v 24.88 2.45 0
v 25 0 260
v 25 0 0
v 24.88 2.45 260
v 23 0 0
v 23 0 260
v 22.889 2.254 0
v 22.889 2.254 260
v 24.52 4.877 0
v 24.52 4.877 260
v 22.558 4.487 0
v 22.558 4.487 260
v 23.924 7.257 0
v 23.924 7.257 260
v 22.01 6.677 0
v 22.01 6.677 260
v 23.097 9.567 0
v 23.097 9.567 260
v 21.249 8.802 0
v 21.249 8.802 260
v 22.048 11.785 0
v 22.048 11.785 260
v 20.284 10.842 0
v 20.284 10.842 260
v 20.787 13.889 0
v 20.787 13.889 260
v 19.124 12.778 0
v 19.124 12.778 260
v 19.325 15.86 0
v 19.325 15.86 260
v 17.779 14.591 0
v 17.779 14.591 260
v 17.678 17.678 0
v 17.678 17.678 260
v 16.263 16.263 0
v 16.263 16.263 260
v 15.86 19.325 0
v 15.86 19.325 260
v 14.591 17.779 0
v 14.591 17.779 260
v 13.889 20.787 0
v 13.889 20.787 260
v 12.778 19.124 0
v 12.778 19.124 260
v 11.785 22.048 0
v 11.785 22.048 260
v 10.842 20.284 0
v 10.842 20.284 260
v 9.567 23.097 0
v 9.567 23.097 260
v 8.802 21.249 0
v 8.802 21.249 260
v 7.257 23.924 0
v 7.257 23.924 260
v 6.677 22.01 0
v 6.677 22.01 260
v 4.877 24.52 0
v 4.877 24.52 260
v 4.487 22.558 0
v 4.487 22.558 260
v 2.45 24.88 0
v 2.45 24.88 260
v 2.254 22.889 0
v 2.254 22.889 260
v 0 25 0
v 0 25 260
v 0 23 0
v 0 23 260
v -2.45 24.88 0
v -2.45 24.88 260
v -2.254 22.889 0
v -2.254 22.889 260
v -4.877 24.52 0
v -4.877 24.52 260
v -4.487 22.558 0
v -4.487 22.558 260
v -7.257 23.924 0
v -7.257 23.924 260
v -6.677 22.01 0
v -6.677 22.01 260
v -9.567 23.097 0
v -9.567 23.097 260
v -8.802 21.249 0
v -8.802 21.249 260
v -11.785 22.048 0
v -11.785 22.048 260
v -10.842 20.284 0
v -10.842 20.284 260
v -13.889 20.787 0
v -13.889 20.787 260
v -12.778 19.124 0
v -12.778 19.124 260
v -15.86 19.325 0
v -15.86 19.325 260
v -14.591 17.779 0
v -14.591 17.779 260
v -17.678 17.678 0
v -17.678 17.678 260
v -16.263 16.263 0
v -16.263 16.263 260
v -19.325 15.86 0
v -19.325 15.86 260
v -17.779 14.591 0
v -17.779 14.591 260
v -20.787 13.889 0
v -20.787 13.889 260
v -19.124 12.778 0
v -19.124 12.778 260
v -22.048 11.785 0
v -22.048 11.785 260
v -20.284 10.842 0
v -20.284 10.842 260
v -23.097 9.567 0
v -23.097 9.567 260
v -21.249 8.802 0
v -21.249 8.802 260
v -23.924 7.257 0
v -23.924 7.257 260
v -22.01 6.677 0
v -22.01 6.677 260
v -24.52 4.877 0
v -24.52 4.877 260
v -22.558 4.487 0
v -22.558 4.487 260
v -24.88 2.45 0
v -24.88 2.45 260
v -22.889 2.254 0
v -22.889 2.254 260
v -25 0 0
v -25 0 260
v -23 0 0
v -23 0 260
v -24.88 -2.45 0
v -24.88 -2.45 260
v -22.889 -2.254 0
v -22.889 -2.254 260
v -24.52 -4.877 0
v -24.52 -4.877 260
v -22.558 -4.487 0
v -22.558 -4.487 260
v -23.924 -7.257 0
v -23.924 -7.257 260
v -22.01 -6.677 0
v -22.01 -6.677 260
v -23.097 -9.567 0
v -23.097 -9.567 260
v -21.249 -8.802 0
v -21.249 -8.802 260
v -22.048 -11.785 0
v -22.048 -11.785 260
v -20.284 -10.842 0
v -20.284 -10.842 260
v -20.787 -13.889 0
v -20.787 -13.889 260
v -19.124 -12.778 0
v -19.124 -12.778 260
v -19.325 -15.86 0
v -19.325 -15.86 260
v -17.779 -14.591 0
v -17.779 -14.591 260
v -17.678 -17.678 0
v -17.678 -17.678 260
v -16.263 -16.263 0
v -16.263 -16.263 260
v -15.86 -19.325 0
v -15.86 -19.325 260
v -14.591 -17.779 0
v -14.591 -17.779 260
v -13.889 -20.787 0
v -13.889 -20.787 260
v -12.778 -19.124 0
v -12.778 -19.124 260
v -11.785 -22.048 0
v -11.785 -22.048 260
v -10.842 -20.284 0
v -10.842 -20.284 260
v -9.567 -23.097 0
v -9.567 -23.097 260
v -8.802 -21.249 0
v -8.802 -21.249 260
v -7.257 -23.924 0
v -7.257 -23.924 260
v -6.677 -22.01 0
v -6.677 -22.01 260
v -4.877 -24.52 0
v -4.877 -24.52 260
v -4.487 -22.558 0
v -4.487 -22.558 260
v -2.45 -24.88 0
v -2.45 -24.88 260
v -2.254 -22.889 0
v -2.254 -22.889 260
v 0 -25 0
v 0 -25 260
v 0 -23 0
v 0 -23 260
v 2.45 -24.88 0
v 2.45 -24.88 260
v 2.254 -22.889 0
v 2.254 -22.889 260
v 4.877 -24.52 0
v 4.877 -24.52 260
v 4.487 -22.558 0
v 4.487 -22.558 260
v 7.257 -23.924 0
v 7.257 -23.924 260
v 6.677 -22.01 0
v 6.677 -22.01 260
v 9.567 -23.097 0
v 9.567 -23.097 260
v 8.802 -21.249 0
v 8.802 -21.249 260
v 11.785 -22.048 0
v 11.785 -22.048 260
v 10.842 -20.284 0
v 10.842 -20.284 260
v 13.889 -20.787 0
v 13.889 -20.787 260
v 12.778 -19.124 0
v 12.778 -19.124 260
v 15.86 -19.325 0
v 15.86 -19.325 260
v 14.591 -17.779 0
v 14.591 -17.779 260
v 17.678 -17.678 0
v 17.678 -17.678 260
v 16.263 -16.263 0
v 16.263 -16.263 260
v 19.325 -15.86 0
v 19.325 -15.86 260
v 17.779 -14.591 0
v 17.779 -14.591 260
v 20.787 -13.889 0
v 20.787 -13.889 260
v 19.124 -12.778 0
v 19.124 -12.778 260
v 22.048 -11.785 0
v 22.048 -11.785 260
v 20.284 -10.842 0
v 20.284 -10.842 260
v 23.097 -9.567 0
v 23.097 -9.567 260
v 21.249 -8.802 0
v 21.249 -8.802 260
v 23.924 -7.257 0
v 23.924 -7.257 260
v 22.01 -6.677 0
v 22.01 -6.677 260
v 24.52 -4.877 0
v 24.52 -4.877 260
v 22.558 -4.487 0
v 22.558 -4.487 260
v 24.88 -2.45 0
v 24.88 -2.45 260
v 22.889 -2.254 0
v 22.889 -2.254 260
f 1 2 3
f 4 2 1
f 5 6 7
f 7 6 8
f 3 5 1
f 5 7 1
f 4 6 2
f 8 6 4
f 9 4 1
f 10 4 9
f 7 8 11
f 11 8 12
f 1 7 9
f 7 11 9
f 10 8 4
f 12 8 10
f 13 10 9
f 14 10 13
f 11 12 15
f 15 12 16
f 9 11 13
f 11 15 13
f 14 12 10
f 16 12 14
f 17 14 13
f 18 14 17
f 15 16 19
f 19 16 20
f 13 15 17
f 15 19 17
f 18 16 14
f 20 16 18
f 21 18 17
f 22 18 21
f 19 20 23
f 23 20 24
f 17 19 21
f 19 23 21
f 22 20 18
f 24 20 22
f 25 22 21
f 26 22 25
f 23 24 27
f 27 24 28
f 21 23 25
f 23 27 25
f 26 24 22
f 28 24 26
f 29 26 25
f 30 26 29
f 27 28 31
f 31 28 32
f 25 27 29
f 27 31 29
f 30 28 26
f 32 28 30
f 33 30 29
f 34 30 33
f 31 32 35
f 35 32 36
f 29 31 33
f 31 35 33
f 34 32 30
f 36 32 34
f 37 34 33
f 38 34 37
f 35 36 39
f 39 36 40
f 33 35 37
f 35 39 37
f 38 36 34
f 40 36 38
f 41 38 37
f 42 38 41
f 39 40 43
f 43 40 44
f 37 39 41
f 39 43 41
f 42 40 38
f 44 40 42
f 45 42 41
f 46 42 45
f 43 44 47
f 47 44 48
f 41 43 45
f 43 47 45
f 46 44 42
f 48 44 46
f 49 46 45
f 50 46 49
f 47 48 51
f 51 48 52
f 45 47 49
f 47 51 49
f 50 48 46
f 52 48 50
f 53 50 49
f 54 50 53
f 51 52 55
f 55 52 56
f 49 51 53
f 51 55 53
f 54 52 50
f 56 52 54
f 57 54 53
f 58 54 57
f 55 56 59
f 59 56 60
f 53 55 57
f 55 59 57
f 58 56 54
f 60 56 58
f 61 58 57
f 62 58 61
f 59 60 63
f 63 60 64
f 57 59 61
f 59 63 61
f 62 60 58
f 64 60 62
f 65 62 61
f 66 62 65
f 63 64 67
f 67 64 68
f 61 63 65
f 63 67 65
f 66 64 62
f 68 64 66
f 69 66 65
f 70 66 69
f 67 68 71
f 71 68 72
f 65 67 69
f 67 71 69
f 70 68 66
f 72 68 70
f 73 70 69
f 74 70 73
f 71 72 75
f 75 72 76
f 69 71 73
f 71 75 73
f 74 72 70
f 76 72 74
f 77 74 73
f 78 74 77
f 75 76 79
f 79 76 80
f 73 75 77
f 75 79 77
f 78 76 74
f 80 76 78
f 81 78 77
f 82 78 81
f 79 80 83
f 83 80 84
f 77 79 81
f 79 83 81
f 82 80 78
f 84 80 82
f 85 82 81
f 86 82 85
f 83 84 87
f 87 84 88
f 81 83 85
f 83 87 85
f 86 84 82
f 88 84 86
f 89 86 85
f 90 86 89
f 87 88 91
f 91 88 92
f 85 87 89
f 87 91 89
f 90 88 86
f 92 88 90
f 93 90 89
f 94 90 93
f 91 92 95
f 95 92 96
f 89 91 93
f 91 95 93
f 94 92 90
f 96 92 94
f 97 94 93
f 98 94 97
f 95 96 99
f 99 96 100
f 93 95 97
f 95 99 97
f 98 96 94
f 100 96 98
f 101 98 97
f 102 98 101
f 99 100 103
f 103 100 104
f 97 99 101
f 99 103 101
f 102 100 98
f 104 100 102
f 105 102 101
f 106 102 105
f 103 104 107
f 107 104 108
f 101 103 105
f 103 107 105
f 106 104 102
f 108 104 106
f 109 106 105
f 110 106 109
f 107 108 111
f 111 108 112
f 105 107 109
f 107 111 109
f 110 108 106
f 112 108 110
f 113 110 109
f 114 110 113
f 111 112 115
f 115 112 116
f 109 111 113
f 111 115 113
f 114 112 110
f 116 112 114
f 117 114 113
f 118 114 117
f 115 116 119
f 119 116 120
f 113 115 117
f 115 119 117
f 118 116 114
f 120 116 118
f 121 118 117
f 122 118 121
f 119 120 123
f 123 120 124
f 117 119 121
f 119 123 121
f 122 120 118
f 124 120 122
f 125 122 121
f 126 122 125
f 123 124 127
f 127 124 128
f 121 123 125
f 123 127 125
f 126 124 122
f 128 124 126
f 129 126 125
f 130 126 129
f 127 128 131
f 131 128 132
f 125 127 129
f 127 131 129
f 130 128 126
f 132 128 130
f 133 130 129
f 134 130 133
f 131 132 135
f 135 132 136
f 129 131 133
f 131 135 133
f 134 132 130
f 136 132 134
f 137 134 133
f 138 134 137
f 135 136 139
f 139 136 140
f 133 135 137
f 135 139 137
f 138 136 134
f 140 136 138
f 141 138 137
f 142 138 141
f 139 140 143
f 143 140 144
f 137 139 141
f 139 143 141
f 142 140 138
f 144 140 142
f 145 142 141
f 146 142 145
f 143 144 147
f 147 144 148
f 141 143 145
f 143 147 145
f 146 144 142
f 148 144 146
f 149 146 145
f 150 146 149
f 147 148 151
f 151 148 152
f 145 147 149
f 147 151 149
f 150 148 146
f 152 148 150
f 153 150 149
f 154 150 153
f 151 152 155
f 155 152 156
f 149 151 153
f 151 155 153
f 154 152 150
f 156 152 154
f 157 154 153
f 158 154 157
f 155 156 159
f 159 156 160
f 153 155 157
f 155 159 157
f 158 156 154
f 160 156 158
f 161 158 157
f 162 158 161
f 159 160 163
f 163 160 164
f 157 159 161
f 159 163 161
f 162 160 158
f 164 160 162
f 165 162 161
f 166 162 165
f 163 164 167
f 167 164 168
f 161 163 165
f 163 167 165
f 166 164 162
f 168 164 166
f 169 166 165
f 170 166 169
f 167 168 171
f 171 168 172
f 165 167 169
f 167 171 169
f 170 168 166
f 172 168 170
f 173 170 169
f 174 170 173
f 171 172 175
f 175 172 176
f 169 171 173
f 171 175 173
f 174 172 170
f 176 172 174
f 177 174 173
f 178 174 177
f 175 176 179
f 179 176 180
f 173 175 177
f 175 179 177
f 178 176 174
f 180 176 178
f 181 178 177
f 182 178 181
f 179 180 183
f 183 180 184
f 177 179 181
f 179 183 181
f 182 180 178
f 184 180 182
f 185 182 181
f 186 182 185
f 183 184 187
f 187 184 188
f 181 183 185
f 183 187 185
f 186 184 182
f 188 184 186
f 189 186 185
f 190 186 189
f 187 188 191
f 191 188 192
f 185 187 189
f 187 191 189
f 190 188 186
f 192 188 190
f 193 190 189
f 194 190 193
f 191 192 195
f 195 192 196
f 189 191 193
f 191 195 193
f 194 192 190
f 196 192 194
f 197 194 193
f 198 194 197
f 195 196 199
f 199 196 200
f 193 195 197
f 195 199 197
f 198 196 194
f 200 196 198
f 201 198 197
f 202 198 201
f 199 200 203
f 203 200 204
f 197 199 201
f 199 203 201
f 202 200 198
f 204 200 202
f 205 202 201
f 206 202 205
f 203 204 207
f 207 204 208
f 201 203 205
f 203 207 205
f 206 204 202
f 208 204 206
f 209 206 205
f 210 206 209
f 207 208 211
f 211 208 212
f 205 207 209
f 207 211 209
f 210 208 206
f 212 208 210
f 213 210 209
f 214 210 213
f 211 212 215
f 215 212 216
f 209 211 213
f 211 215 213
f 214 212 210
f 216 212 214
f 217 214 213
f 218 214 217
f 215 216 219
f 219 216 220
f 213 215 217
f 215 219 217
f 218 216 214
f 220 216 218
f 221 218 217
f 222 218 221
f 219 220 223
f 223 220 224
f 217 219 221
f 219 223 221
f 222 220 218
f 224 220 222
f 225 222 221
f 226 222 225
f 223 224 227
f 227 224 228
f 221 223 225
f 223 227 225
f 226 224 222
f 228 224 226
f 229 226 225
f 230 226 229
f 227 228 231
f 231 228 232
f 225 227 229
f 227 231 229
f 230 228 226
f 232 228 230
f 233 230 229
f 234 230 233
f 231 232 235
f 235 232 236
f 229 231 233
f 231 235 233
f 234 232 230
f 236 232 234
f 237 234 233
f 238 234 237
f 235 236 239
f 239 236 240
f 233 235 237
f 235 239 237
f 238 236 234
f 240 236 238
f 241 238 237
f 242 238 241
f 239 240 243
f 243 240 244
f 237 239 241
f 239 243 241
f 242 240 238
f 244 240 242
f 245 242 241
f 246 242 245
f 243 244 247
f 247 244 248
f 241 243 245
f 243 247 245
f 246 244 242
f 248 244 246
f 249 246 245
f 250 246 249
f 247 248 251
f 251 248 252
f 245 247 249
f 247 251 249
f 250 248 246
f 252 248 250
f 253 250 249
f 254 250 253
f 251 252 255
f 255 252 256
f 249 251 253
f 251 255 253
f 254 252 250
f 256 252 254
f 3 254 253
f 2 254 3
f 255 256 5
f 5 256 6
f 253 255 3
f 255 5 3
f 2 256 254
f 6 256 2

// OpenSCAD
// Product column for the four-column XIAO dispenser.
// Open this in OpenSCAD (https://openscad.org) to edit the tube.
// The STL next to this file is the same solid.
//
// Sized from the Version Zero reference:
// - column height 260 mm (the 26 cm PVC column)
// - 50 mm outside diameter, to sit on the ~53 mm dispenser body
// - 46 mm inside diameter, so xiao-series.stl (about 42 mm) can pass
// Four copies match the four dispensers held by the tube support.

height = 260;
outer_d = 50;
wall = 2;

$fn = 64;
difference() {
  cylinder(h = height, d = outer_d);
  translate([0, 0, -1])
    cylinder(h = height + 2, d = outer_d - wall * 2);
}
